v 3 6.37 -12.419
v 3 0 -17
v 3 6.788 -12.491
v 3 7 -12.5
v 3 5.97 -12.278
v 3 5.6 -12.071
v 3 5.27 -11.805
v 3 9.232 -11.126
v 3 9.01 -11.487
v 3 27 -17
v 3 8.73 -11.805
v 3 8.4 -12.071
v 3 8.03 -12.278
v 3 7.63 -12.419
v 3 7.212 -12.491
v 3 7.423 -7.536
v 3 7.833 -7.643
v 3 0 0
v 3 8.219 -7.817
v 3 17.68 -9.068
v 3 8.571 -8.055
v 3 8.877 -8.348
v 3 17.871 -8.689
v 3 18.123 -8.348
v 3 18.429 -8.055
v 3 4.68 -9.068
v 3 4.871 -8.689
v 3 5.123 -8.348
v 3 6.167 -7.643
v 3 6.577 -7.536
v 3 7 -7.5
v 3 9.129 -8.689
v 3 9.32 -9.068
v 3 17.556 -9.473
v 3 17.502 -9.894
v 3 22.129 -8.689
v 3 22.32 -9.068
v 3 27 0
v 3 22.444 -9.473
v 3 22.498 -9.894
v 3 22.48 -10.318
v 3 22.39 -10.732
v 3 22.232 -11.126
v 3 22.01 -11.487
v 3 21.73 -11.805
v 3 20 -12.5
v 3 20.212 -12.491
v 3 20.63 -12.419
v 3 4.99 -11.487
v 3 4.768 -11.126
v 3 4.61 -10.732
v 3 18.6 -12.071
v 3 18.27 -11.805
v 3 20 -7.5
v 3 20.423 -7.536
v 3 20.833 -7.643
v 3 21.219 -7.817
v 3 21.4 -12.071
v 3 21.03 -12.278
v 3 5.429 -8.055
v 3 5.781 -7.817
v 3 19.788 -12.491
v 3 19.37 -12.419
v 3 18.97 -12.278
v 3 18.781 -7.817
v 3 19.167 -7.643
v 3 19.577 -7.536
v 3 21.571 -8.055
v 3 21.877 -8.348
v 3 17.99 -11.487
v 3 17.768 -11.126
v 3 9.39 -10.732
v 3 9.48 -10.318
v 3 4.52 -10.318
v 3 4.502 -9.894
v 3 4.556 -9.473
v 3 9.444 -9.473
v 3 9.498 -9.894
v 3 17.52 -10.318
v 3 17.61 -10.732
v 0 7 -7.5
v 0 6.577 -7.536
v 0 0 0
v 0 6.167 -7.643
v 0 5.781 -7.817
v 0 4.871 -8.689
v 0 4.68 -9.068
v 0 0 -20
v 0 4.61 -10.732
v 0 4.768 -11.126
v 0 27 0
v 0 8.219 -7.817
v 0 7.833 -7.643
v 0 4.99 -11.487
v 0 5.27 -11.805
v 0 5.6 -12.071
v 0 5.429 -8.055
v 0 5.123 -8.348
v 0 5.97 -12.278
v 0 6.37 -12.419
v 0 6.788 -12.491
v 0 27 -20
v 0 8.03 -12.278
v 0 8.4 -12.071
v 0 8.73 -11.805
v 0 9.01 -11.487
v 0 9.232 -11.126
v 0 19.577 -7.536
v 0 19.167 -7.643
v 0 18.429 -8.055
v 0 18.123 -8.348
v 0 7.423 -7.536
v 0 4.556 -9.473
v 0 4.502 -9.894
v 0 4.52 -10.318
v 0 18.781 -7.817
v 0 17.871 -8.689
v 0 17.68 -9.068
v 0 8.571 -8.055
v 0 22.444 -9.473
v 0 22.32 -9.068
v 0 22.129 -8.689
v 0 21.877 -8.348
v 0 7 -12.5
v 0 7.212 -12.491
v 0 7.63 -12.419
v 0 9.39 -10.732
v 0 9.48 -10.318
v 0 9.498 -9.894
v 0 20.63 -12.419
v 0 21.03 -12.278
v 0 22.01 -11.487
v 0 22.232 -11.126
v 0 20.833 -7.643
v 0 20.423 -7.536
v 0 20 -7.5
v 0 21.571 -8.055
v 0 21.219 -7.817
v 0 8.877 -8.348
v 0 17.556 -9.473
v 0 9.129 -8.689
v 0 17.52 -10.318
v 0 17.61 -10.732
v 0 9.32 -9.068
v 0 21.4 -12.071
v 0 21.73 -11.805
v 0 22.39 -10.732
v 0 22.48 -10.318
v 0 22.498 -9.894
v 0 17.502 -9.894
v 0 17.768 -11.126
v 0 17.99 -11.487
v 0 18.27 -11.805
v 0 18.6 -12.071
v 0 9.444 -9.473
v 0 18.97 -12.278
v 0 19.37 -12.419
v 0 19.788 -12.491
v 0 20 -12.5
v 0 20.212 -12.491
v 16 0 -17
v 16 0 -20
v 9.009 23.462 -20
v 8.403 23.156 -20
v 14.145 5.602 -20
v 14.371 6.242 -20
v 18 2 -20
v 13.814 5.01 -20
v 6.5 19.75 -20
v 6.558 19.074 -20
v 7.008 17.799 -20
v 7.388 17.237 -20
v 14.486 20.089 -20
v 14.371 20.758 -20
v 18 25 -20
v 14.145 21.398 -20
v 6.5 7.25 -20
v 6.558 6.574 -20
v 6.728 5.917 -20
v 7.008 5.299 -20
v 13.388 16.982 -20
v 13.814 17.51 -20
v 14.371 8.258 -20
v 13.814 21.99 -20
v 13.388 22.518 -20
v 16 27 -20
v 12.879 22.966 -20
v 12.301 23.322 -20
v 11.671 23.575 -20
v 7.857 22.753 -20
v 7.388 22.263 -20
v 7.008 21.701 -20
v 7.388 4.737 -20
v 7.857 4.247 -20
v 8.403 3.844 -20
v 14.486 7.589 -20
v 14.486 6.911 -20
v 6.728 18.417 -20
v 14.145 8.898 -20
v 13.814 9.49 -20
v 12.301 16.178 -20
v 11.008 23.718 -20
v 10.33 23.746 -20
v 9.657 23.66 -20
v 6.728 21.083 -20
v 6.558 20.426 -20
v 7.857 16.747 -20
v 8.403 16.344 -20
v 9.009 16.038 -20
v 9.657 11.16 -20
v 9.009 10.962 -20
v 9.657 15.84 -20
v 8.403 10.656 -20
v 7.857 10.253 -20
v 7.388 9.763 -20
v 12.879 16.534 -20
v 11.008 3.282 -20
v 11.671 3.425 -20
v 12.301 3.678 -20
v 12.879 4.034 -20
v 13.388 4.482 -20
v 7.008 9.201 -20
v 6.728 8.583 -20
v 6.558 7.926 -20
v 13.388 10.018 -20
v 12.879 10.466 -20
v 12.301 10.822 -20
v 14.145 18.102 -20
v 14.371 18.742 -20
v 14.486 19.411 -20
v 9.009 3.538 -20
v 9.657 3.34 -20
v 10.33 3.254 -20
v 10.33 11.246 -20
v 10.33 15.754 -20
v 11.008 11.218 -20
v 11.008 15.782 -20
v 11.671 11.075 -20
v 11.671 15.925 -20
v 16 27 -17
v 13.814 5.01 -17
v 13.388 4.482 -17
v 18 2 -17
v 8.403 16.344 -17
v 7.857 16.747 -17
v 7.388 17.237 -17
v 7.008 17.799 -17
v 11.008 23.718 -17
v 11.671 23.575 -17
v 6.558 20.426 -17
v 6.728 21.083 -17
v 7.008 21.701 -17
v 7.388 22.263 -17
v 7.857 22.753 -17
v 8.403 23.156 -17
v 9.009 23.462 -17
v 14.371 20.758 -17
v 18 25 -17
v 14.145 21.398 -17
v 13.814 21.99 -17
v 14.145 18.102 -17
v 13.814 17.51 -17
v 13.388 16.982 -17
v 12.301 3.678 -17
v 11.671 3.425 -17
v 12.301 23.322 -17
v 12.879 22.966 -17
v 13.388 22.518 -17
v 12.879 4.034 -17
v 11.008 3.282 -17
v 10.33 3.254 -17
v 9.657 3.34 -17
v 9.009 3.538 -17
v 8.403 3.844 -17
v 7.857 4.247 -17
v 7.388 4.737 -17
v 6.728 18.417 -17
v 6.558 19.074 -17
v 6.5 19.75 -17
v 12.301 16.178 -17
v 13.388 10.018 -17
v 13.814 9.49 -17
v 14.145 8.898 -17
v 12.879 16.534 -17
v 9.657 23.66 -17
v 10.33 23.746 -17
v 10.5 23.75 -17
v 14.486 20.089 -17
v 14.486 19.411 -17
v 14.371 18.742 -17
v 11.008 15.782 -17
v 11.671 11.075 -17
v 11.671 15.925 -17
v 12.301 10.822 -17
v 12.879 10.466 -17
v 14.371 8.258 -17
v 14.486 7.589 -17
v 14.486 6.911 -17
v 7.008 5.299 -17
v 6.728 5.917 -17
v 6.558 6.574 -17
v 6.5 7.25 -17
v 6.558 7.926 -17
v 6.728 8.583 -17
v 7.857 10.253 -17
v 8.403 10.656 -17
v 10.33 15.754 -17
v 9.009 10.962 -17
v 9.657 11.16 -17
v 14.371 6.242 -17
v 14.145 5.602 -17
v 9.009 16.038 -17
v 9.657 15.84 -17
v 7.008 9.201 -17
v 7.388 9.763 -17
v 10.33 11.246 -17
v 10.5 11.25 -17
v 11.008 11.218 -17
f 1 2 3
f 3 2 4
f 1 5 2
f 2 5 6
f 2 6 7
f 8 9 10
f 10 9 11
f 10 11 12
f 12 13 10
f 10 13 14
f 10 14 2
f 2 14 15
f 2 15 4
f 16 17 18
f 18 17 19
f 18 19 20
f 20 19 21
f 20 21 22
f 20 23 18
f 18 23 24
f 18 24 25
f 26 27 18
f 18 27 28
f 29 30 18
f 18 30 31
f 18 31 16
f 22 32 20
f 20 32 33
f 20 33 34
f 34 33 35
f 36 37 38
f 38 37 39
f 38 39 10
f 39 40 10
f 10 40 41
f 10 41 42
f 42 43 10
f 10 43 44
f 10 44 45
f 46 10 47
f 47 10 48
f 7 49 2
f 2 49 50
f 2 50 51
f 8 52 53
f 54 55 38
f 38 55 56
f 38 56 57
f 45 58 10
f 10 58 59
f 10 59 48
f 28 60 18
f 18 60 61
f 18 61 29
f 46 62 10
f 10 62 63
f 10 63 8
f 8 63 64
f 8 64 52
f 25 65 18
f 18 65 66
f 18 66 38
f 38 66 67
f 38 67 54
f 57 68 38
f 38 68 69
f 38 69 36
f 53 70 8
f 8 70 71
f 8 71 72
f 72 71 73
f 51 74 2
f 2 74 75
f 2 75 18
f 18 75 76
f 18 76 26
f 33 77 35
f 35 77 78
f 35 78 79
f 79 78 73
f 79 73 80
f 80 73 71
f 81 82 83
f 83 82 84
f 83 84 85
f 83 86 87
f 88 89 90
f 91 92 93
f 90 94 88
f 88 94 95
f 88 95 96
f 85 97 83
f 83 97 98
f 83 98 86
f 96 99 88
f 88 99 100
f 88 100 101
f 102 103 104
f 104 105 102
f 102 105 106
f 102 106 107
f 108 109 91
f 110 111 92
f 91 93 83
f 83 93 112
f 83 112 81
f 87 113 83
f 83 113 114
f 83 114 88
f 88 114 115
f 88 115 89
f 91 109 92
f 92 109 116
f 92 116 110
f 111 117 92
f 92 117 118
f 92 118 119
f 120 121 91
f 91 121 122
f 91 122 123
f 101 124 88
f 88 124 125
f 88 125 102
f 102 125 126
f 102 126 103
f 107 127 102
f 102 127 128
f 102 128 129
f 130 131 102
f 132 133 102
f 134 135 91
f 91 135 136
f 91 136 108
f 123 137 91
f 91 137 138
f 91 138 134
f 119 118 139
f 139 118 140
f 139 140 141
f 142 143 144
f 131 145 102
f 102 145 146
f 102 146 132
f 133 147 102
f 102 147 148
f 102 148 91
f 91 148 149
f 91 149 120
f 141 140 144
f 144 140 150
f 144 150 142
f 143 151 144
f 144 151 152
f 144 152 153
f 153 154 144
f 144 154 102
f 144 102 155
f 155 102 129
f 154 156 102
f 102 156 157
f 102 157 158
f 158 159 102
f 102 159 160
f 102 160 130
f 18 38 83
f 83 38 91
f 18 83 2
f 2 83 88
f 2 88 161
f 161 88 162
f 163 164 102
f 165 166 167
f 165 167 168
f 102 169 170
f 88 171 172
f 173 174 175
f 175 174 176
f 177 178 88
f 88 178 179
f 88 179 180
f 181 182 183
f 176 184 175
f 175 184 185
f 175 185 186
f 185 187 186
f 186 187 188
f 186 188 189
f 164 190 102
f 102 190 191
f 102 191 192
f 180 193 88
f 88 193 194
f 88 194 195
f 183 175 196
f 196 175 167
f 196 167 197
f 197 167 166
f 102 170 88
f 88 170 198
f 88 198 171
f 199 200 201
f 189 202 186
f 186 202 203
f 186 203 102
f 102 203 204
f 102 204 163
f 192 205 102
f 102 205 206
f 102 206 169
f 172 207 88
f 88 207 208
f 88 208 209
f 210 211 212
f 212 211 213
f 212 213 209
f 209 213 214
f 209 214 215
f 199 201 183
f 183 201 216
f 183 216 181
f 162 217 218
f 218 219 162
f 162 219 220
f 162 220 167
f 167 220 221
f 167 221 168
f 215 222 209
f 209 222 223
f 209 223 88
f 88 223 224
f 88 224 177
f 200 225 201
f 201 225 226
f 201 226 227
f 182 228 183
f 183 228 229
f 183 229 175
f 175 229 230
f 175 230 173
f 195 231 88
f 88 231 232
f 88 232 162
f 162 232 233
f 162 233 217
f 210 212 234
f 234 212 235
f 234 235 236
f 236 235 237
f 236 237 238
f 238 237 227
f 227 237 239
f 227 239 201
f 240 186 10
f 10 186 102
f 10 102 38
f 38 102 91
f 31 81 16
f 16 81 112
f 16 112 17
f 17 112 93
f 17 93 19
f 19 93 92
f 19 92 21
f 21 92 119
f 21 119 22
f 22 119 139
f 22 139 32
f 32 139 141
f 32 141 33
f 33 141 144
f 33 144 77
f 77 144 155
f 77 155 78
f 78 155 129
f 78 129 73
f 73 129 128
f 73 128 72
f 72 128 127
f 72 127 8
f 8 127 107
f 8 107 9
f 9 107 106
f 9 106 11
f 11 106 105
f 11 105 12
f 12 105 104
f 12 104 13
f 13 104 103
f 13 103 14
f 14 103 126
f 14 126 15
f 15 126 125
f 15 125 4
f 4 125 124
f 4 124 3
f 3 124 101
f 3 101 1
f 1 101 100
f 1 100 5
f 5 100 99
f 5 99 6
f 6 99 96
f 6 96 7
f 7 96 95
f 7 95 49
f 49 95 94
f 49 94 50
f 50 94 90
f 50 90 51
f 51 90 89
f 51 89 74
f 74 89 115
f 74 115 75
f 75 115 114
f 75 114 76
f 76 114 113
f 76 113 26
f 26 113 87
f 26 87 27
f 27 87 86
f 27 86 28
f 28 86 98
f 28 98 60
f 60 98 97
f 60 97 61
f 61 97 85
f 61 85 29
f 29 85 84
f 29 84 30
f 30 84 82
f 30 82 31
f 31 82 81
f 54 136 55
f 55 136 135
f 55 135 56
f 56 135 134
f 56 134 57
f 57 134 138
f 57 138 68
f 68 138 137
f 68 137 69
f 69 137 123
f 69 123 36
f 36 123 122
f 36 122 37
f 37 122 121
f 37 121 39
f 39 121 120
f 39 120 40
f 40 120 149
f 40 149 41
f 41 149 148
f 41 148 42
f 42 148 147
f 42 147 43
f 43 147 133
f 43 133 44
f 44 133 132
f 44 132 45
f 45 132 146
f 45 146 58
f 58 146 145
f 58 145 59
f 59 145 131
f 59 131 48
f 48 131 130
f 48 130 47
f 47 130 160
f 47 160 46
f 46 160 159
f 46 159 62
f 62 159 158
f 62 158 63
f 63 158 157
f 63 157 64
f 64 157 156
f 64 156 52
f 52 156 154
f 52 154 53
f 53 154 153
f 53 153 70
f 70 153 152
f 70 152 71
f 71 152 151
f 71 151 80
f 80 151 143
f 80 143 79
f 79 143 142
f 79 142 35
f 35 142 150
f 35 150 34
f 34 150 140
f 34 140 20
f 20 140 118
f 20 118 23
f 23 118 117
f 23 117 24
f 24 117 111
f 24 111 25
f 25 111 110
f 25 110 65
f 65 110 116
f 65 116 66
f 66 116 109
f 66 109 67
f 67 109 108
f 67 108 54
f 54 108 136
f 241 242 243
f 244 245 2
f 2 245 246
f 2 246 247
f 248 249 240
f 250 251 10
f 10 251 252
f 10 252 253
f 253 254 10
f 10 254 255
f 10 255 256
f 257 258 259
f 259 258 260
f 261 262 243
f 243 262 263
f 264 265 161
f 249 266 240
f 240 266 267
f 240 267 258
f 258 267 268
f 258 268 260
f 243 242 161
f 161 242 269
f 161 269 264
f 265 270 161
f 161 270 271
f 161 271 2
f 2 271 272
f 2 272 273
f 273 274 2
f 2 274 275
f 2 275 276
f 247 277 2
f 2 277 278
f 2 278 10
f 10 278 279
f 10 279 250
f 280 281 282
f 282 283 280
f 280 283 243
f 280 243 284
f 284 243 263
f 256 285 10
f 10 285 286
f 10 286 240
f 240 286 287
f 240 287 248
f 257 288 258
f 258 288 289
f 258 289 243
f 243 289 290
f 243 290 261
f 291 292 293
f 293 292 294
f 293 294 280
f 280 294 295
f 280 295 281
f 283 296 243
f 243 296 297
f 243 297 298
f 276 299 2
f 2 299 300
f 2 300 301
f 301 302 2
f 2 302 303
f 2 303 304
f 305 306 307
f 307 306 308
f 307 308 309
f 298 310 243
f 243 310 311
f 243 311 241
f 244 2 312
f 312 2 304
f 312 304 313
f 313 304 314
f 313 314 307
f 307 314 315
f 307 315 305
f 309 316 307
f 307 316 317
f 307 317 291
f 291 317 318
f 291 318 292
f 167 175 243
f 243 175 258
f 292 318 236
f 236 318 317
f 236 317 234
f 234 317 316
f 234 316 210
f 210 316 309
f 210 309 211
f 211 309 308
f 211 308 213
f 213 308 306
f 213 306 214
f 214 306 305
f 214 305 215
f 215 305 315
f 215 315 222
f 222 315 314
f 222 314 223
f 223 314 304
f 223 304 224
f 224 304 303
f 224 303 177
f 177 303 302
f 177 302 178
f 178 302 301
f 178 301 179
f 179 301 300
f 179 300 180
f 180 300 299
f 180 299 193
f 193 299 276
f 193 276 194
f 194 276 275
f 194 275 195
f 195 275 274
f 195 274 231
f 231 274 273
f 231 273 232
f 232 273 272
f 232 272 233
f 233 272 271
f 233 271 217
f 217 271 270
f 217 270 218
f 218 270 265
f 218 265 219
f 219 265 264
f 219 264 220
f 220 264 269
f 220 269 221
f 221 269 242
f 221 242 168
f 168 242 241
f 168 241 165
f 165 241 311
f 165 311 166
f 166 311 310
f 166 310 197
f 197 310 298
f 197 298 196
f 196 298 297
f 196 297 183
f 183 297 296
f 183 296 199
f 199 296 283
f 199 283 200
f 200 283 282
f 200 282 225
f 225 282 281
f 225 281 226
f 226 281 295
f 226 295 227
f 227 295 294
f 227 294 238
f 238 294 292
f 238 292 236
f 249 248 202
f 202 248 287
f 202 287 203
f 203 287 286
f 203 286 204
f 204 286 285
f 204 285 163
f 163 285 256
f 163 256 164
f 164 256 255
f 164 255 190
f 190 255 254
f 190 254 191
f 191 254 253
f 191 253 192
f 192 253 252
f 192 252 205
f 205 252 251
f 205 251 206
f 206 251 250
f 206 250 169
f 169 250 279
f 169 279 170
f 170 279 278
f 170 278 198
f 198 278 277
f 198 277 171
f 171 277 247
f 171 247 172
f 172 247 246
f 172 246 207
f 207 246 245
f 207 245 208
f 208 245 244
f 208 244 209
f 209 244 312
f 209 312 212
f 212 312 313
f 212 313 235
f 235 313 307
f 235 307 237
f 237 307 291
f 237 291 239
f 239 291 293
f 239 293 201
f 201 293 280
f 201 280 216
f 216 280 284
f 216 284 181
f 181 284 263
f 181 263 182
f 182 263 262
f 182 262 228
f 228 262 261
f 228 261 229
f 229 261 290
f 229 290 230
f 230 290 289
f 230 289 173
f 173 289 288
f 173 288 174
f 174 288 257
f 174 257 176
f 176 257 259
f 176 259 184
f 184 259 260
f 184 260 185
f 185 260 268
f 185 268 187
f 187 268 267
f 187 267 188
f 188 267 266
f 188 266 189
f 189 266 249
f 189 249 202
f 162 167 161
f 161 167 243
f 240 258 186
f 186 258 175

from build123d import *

# Parameters (mm, degrees)
SKETCH1_W           = 20
SKETCH1_H           = 27
SKETCH1_R           = 2.5
BOSS_EXTRUDE1_DEPTH = 3
SKETCH2_W           = 3
SKETCH2_H           = 27
BOSS_EXTRUDE2_DEPTH = 15
SKETCH3_R           = 4
CUT_EXTRUDE1_DEPTH  = 15
CHAMFER1_SIZE       = 2


with BuildPart() as part:
    # Sketch1 → Boss-Extrude1 (new body)
    with BuildSketch(Plane(origin=(0, 0, 0), x_dir=(0, 0, -1), z_dir=(1, 0, 0))):
        with Locations((10, 13.5)):
            Rectangle(SKETCH1_W, SKETCH1_H)
        with Locations((10, 7)):
            Circle(SKETCH1_R, mode=Mode.SUBTRACT)
        with Locations((10, 20)):
            Circle(SKETCH1_R, mode=Mode.SUBTRACT)
    extrude(amount=BOSS_EXTRUDE1_DEPTH)

    # Sketch2 → Boss-Extrude2 (add)
    with BuildSketch(Plane(origin=(3, 0, 0), x_dir=(0, 0, -1), z_dir=(1, 0, 0))):
        with Locations((18.5, 13.5)):
            Rectangle(SKETCH2_W, SKETCH2_H)
    extrude(amount=BOSS_EXTRUDE2_DEPTH)

    # Sketch3 → Cut-Extrude1 (cut)
    with BuildSketch(Plane(origin=(0, 0, -20), x_dir=(-1, 0, 0), z_dir=(0, 0, -1))):
        with Locations((-10.5, 19.75)):
            Circle(SKETCH3_R)
        with Locations((-10.5, 7.25)):
            Circle(SKETCH3_R)
    extrude(amount=-CUT_EXTRUDE1_DEPTH, mode=Mode.SUBTRACT)

    # Chamfer1
    chamfer1_edges = [part.edges().sort_by_distance(p)[0] for p in [
        (18, 27, -18.5),
        (18, 0, -18.5),
    ]]
    chamfer(chamfer1_edges, length=CHAMFER1_SIZE)


solid = part.part
